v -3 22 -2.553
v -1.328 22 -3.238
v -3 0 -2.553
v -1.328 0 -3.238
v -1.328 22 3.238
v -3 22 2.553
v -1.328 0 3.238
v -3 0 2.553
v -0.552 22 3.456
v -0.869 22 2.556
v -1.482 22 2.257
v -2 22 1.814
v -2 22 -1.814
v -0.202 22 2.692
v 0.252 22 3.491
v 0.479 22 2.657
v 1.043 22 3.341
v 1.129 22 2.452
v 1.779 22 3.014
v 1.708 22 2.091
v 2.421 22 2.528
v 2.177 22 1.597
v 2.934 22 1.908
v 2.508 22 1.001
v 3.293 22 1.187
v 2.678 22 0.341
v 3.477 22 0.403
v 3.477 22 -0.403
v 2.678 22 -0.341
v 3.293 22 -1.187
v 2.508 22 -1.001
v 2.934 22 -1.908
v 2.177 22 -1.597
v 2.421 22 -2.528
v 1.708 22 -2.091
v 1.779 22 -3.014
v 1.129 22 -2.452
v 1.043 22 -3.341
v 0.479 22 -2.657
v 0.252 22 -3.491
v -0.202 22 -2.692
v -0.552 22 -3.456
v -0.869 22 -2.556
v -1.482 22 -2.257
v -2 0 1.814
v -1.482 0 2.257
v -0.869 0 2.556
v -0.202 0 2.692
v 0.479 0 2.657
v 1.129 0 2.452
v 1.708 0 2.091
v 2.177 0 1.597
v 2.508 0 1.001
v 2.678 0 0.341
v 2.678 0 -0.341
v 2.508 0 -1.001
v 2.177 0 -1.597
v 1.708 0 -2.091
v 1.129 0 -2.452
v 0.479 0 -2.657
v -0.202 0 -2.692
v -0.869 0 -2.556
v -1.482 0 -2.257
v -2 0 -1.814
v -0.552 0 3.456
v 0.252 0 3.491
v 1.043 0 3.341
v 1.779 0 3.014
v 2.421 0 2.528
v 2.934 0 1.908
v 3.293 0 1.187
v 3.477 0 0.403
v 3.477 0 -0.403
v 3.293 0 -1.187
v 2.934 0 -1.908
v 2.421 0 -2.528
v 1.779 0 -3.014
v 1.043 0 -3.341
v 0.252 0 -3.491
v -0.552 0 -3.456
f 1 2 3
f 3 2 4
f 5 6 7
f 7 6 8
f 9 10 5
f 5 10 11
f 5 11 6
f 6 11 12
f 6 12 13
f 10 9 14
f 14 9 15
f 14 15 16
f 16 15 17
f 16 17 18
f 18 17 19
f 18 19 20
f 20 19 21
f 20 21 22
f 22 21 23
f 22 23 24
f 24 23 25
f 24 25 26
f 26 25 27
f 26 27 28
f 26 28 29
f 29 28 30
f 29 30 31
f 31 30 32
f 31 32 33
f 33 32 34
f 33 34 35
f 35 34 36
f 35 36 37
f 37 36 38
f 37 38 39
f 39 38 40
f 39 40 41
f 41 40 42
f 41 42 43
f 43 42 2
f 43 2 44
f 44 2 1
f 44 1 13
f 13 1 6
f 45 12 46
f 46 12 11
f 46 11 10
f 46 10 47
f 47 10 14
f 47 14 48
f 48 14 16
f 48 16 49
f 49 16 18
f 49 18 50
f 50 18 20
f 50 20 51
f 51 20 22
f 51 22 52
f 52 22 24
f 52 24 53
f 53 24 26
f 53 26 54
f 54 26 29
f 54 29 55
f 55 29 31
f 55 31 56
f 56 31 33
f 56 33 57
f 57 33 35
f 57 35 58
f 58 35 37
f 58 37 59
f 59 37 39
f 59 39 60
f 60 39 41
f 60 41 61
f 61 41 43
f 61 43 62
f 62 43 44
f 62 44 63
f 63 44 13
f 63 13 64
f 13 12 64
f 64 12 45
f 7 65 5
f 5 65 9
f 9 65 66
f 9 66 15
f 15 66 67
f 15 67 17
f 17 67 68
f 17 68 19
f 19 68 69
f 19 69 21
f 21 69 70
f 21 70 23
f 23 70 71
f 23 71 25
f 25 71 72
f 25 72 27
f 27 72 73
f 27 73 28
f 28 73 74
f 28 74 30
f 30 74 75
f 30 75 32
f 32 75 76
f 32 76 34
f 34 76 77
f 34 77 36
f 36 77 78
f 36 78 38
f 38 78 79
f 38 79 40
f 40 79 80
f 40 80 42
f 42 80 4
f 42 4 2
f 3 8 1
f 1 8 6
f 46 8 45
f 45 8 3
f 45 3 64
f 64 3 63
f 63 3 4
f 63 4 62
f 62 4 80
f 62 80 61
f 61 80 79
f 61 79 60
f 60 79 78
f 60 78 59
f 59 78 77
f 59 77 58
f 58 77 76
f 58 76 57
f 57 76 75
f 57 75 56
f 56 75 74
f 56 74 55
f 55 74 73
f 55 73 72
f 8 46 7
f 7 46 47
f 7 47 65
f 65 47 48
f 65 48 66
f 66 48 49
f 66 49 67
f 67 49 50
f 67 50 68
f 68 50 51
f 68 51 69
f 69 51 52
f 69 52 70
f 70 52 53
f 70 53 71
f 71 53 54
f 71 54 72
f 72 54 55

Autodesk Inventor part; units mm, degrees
ref_plane "YZ Plane" through (0, 0, 0) normal (1, 0, 0) x (0, 1, 0)
ref_plane "XZ Plane" through (0, 0, 0) normal (0, 1, 0) x (-1, 0, 0)
ref_plane "XY Plane" through (0, 0, 0) normal (0, 0, 1) x (1, 0, 0)
sketch "Sketch1" plane through (0, 0, 0) normal (0, 1, 0) x (-1, 0, 0)
  arc A0 (2, 1.5) -> (2, -1.5) centre (0, 0) ccw
  line L0 (2, 0) -> (2, -1.5)
  line L1 (2, 0) -> (2, 1.5)
sketch "Sketch1 outline for Extrusion1" plane through (0, 0, 0) normal (0, 1, 0) x (-1, 0, 0)
  line L0 (2, 0) -> (2, -1.5)
  arc A0 (2, -1.5) -> (2, 1.5) centre (0, 0) cw
  line L1 (2, 1.5) -> (2, 0)
extrude "Extrusion1" add sketch "Sketch1 outline for Extrusion1" along normal blind 22
thicken "Thicken1" operation add thickness 1 both sides no extend neighbours yes toward (-0.5598596, 0, 0.8285875) faces at (-1.399649, 14.666667, 2.071469) (-2, 14.666667, -0.5) (-2, 14.666667, 1)
sketch "Sketch2" plane through (0, 22, 0) normal (0, 1, 0) x (1, 0, 0)
  arc A0 (-2, -1.813836) -> (-2, 1.813836) centre (0, 0) ccw
  line L0 (-2, 0) -> (-2, 1.813836)
  line L1 (-2, 0) -> (-2, -1.813836)
  dimension "d8" = 5.4
sketch "Sketch2 outline for Extrusion2" plane through (0, 22, 0) normal (0, 1, 0) x (1, 0, 0)
  line L0 (-2, 0) -> (-2, 1.813836)
  arc A0 (-2, 1.813836) -> (-2, -1.813836) centre (0, 0) cw
  line L1 (-2, -1.813836) -> (-2, 0)
extrude "Extrusion2" cut sketch "Sketch2 outline for Extrusion2" against normal blind 22
sketch "Sketch3" plane through (0, 22, 0) normal (0, 1, 0) x (1, 0, 0)
  arc A0 (-3, -1.802776) -> (-3, 1.802776) centre (0, 0) ccw
  line L0 (-3, -1.802776) -> (-3, 2.552776)
  line L1 (-3, 2.552776) -> (-1.3277, 3.238397)
  line L2 (-3, -1.802776) -> (-3, -2.552776)
  line L3 (-3, -2.552776) -> (-1.3277, -3.238397)
  line L4 (-1.3277, -3.238397) -> (-2, -1.813836)
  line L5 (-2, 1.813836) -> (-2, -1.813836)
  line L6 (-2, -1.813836) -> (-2, 1.813836)
  line L7 (-2, 1.813836) -> (-1.3277, 3.238397)
  dimension "d12" = 4.35555
  dimension "d13" = 0.75
sketch "Sketch3 outline for Extrusion3" plane through (0, 22, 0) normal (0, 1, 0) x (1, 0, 0)
  line L0 (-3, -2.552776) -> (-1.3277, -3.238397)
  line L1 (-1.3277, -3.238397) -> (-2, -1.813836)
  line L2 (-2, -1.813836) -> (-2, 1.813836)
  line L3 (-2, 1.813836) -> (-1.3277, 3.238397)
  line L4 (-1.3277, 3.238397) -> (-3, 2.552776)
  line L5 (-3, 2.552776) -> (-3, -2.552776)
extrude "Extrusion3" add sketch "Sketch3 outline for Extrusion3" against normal blind 22
properties part number "MirrorMount"
